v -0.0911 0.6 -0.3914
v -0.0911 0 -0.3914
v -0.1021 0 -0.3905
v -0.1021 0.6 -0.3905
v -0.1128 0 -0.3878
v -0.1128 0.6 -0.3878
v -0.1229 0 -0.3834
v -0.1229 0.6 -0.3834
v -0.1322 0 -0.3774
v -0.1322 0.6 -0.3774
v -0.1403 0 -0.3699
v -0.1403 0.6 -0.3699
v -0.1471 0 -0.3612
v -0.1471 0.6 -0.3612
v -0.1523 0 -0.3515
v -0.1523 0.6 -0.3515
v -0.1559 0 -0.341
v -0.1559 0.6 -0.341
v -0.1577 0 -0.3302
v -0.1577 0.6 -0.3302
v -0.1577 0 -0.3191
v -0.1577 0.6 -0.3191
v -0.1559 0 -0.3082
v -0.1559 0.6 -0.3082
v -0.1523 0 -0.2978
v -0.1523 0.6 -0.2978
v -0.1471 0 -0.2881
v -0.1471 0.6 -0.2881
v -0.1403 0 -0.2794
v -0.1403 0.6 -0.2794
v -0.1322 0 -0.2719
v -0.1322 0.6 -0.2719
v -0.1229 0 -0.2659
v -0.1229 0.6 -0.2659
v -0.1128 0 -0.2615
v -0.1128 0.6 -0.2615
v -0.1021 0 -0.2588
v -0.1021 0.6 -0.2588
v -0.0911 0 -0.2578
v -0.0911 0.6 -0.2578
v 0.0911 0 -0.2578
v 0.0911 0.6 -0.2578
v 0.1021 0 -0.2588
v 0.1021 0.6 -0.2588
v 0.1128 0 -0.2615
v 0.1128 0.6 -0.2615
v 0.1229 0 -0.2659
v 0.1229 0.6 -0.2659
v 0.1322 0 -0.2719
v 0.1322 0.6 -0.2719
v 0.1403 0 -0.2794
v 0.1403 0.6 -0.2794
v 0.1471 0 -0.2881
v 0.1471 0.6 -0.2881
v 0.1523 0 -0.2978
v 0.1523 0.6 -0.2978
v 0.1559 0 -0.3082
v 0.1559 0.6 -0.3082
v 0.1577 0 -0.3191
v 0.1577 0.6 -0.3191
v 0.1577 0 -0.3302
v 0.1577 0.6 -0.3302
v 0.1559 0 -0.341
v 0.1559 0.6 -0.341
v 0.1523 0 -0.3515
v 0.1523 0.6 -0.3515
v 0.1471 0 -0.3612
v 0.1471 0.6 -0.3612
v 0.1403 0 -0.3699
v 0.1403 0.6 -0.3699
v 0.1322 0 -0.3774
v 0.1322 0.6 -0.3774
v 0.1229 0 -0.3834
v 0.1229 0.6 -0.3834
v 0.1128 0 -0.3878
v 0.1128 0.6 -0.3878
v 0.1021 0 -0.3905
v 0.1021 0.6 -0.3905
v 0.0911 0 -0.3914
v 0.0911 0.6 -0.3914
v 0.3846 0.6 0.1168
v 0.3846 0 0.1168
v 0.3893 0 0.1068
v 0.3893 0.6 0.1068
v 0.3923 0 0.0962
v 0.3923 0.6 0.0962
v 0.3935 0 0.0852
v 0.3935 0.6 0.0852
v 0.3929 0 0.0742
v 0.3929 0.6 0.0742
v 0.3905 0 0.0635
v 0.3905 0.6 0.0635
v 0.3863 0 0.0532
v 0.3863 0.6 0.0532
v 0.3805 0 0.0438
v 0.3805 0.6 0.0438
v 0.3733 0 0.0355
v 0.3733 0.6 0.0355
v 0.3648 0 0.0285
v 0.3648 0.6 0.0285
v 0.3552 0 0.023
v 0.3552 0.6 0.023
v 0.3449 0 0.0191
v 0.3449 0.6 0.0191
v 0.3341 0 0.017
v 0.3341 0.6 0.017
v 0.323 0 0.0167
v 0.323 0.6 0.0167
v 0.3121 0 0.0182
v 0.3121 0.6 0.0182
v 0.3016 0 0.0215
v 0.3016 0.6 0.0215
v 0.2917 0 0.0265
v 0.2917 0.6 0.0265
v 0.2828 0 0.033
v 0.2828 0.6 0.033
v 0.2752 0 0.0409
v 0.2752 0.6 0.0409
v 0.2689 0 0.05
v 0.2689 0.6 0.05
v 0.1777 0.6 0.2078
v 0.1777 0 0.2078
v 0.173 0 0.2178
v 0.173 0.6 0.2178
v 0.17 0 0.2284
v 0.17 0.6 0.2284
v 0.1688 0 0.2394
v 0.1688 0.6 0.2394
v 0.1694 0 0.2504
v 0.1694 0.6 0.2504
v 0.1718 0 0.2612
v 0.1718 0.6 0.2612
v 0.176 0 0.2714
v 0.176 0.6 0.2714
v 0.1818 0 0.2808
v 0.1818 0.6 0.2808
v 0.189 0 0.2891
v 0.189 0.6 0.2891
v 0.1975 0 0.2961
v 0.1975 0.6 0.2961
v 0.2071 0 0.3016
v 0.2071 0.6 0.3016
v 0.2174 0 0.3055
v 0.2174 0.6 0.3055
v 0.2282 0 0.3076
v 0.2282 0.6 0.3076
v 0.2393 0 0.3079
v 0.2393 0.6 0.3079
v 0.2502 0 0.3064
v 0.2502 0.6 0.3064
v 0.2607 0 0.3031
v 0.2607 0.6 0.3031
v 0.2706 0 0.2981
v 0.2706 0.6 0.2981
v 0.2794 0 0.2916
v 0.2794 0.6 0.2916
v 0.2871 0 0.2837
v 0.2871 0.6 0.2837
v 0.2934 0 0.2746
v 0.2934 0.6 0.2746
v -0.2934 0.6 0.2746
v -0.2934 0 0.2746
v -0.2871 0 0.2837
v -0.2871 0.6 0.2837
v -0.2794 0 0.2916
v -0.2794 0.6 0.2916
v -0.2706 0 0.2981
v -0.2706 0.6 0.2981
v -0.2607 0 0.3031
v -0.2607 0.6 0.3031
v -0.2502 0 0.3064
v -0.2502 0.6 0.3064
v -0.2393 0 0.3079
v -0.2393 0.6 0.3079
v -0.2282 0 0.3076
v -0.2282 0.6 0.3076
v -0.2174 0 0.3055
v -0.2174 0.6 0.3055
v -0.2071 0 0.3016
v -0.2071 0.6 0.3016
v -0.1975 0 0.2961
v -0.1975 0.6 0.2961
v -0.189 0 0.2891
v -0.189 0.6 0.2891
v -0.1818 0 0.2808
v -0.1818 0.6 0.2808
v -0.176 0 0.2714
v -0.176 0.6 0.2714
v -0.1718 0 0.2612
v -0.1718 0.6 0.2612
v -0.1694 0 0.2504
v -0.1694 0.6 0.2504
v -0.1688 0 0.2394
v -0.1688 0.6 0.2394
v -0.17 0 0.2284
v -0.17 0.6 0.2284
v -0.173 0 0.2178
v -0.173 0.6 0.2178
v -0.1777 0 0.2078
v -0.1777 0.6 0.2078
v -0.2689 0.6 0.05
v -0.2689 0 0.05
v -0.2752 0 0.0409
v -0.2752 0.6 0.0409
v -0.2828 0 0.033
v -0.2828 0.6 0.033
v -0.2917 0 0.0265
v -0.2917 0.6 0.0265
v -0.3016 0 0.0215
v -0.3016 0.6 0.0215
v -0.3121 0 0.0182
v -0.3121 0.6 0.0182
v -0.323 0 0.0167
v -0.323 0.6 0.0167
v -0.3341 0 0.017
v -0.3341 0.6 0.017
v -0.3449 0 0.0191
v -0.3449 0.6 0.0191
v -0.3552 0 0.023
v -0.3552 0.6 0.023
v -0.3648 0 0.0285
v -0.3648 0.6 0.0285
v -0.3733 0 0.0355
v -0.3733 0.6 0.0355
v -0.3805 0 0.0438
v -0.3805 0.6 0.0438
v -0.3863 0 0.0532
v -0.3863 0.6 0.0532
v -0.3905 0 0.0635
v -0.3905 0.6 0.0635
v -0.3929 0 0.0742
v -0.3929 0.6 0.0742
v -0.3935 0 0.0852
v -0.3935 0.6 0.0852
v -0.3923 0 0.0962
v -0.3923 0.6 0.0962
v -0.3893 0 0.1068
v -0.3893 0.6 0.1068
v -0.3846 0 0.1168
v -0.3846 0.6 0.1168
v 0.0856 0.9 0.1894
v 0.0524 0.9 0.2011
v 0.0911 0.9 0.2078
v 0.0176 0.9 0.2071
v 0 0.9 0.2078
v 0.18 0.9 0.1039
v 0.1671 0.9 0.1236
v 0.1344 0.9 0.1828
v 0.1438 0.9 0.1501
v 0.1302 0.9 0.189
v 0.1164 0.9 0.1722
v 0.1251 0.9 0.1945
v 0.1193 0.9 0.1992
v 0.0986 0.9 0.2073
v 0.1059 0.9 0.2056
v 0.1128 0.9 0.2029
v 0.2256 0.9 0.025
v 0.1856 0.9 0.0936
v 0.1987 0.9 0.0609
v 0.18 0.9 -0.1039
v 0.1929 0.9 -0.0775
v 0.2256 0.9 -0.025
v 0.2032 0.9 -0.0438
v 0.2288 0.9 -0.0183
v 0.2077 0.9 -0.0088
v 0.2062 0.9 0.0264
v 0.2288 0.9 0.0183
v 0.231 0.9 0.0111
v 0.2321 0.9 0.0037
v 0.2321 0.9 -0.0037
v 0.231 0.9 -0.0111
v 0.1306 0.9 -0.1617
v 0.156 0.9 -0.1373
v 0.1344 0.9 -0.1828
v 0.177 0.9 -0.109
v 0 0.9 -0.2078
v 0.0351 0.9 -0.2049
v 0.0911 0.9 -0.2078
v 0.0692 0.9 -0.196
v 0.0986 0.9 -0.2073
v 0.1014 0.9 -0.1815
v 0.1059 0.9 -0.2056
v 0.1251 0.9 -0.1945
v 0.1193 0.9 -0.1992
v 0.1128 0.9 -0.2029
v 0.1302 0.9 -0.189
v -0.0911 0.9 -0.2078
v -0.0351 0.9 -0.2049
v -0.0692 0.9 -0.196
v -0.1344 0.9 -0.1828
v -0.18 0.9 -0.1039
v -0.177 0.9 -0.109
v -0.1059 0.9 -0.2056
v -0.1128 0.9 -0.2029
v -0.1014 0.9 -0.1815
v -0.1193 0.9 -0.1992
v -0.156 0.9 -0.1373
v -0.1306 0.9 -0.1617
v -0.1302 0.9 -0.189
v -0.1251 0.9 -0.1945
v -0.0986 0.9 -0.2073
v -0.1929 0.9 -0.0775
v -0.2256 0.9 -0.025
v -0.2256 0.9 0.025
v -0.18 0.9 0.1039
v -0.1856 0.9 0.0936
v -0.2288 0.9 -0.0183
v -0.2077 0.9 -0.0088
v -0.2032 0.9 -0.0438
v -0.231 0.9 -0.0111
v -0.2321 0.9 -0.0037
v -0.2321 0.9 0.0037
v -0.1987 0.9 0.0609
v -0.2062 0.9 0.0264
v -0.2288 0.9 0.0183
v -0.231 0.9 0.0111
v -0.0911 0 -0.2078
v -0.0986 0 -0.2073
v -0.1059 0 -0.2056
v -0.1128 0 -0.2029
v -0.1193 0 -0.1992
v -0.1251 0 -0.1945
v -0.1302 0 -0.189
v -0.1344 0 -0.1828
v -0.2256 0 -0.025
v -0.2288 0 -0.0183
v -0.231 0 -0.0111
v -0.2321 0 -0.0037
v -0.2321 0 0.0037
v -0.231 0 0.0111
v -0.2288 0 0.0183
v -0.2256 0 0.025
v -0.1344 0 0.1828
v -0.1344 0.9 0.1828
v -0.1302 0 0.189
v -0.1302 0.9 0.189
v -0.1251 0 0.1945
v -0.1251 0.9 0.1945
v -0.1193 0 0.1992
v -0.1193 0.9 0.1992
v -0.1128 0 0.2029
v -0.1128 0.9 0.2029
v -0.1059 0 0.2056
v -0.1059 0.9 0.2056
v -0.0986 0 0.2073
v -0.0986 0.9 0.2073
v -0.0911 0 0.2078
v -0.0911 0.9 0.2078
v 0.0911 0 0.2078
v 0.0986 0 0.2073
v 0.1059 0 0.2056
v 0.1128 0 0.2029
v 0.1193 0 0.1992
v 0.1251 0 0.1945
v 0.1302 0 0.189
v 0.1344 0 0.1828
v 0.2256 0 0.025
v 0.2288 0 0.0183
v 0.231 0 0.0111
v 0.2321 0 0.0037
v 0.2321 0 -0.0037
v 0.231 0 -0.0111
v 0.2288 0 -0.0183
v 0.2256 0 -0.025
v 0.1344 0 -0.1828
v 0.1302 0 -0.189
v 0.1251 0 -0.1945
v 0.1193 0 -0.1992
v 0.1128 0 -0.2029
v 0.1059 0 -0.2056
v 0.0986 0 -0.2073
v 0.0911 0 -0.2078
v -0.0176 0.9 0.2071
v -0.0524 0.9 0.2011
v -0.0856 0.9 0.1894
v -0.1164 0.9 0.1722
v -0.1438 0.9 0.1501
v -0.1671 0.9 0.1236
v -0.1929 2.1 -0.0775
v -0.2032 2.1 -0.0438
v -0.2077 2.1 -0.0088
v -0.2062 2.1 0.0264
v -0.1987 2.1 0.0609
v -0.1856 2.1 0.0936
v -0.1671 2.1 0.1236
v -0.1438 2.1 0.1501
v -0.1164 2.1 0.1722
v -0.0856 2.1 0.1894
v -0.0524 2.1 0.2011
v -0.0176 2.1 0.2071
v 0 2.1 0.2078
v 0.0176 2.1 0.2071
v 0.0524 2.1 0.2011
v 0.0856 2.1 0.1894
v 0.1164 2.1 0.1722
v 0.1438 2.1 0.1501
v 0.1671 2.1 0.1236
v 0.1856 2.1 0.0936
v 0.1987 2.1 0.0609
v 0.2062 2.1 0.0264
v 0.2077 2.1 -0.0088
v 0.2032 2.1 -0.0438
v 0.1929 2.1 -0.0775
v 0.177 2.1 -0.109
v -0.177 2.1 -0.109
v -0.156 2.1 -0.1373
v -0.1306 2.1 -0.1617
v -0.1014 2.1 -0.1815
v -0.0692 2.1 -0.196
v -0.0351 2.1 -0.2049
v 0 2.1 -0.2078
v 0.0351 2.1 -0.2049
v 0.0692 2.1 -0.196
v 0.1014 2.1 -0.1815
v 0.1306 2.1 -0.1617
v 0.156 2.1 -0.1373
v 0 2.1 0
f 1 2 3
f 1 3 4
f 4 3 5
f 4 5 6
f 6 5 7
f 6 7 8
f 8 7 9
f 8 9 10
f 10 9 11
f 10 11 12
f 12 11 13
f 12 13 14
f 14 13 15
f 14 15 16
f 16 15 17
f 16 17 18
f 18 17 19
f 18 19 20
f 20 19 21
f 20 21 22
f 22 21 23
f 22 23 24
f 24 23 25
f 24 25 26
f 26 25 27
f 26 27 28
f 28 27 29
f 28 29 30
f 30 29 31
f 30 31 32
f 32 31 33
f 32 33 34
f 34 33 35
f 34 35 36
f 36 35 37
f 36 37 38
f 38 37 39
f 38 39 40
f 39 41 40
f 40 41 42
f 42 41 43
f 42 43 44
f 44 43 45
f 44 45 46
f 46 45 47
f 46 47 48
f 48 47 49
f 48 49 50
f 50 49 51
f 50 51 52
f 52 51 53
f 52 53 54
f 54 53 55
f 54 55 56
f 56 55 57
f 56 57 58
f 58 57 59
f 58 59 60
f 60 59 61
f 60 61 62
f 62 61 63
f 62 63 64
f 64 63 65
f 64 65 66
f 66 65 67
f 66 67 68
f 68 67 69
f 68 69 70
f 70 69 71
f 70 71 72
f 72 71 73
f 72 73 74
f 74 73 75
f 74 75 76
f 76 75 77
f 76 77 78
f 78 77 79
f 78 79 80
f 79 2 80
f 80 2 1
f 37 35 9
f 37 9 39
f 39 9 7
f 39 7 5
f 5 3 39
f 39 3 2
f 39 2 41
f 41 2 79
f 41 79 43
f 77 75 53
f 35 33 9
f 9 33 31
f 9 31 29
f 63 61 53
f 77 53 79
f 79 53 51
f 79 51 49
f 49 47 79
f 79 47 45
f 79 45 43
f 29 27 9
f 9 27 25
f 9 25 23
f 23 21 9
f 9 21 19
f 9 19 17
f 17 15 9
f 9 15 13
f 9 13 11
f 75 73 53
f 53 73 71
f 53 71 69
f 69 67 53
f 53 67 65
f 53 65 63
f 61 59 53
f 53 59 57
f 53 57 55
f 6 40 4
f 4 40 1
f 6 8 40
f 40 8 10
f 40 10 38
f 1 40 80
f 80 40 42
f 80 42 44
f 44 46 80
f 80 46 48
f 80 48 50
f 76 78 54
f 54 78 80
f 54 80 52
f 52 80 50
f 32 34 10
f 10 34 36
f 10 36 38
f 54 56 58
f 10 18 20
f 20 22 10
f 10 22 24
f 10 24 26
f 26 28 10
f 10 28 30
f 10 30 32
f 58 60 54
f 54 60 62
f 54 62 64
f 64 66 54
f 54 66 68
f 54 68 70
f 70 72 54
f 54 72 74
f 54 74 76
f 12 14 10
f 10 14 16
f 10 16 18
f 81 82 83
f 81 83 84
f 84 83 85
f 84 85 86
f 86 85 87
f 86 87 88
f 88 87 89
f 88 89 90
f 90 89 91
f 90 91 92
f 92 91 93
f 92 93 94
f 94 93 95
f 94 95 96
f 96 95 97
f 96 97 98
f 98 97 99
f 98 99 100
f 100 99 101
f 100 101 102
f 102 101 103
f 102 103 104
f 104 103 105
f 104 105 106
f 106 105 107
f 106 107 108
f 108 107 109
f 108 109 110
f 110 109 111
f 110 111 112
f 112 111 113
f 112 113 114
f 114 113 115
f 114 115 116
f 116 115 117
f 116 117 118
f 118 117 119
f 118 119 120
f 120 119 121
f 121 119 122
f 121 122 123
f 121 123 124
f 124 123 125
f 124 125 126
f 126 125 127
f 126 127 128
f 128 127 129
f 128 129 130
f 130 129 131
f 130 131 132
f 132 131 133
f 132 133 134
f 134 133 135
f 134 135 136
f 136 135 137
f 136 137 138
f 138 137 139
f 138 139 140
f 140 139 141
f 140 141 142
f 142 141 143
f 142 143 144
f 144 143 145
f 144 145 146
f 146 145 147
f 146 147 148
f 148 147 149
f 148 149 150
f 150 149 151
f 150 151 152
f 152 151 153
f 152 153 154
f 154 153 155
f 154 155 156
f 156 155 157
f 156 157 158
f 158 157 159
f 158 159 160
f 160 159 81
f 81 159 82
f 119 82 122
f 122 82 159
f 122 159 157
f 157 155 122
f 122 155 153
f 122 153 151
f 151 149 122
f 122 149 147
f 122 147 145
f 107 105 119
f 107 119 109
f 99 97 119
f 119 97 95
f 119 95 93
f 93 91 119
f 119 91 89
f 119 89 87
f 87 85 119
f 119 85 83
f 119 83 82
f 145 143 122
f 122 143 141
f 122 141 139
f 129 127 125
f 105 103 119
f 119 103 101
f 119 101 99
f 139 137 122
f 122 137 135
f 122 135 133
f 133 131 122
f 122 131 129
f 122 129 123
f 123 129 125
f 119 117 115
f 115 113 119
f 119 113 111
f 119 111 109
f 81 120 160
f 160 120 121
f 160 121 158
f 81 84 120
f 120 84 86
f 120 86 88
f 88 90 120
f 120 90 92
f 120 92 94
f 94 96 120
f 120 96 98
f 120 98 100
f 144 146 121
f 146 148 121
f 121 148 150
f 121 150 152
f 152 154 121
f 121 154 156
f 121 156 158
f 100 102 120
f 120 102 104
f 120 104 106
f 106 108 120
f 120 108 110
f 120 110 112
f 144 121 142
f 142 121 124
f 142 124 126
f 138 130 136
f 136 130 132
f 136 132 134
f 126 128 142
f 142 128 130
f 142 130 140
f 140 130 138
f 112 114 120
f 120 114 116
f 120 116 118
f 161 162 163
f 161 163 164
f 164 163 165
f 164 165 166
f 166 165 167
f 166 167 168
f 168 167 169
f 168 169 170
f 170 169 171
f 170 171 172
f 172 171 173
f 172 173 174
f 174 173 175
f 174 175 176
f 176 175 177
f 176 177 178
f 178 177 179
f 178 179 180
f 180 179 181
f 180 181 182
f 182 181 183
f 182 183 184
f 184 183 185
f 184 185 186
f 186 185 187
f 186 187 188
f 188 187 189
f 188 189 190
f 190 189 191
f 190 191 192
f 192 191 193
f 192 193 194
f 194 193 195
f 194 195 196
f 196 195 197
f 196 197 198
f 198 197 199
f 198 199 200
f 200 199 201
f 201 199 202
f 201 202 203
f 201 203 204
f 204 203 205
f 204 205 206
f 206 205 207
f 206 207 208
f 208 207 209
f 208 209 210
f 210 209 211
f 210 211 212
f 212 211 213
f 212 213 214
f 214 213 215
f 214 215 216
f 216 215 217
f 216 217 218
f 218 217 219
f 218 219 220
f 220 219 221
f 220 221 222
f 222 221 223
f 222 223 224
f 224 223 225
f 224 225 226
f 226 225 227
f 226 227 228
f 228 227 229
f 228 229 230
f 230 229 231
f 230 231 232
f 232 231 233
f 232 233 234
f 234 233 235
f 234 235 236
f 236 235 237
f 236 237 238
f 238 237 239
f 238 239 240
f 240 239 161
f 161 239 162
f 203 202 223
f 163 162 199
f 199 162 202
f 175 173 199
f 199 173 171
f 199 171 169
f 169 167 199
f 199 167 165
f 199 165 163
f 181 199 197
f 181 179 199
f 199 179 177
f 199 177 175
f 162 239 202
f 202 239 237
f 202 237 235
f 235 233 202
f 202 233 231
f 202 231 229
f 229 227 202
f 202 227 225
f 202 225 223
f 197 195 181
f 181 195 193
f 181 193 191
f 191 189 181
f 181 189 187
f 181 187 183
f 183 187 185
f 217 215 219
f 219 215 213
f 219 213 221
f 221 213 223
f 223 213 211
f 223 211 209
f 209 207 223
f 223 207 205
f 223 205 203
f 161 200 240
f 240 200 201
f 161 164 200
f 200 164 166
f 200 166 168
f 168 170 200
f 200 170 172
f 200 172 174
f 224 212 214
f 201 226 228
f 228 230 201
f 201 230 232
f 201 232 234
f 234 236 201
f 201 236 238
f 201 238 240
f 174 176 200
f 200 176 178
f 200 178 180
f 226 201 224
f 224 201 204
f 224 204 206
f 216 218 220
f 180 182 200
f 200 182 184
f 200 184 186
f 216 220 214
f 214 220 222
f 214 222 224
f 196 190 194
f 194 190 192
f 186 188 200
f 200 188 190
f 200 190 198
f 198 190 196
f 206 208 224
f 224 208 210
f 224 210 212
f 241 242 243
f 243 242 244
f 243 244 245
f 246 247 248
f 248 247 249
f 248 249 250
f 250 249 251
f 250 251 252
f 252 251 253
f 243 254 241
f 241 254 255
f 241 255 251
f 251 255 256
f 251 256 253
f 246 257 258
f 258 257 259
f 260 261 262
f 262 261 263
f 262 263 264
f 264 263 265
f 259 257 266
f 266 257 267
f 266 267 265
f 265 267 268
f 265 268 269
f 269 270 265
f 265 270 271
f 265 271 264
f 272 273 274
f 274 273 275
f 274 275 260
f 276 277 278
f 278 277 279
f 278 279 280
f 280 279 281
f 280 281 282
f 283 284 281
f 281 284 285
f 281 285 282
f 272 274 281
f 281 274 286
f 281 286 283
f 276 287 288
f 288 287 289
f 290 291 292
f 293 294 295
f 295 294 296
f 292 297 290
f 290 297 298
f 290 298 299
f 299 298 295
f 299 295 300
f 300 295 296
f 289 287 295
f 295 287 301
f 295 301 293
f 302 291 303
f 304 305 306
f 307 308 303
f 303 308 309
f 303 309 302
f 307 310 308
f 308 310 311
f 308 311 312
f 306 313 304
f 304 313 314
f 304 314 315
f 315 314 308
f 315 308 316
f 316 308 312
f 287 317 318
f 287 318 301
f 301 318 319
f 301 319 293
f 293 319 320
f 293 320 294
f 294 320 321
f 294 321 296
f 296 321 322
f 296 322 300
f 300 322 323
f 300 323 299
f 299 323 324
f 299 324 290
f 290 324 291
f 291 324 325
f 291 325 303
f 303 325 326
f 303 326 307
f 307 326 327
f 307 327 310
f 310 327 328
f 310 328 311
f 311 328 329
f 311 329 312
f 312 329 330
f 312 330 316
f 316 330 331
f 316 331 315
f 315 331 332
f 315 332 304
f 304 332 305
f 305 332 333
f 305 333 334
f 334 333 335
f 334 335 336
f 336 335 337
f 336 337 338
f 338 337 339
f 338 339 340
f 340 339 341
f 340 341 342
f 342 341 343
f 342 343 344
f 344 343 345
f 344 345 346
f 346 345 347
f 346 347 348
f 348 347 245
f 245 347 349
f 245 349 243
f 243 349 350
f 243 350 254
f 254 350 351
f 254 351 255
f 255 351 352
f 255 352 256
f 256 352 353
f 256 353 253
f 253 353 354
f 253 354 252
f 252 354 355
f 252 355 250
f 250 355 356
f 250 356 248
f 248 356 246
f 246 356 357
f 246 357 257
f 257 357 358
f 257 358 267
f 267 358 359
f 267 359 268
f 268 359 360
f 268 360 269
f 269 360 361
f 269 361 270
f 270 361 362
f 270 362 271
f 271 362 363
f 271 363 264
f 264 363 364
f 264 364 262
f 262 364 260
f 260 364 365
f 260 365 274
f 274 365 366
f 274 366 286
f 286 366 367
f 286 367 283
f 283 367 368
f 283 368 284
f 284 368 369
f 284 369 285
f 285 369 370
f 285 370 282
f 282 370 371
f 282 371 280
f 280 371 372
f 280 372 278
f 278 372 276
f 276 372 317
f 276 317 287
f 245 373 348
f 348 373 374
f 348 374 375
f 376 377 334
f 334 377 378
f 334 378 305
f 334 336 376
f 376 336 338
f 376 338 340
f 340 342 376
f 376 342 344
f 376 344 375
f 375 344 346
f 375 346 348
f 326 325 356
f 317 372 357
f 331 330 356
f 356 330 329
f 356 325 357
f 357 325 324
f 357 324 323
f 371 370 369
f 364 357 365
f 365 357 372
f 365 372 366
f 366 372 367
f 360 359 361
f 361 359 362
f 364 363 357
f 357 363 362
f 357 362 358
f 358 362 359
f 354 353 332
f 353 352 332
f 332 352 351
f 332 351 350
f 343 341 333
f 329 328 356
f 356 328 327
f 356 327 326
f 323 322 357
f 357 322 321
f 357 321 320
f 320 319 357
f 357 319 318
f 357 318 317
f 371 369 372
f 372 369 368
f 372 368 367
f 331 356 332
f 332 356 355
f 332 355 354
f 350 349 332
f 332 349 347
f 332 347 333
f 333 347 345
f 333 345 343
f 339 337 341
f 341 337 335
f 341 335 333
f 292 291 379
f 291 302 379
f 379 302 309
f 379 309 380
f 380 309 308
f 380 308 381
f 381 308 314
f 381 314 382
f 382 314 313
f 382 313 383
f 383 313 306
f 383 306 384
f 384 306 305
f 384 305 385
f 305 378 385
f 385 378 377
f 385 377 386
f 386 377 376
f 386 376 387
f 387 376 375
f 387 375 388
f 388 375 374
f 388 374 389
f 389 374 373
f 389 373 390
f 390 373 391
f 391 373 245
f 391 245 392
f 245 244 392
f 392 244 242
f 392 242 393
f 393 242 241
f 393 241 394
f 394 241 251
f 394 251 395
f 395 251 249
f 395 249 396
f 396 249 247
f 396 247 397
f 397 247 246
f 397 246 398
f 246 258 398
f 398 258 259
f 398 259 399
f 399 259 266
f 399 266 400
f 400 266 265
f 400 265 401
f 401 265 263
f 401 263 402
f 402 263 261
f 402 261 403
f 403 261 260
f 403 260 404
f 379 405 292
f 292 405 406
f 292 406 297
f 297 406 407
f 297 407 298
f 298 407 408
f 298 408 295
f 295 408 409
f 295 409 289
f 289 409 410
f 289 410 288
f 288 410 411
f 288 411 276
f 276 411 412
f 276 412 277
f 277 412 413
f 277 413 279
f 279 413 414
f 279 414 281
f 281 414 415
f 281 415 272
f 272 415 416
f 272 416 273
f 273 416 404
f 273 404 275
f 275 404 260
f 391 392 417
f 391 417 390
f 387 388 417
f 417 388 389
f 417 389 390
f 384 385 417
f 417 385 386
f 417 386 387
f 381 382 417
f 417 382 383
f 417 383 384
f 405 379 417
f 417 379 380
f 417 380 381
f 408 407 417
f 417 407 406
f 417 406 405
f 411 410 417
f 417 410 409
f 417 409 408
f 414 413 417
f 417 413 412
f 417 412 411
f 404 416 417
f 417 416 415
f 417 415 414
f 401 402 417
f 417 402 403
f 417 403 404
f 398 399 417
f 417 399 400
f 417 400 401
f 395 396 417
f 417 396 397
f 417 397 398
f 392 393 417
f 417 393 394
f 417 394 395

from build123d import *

# Parameters (mm, degrees)
BOSS_EXTRUDE5_DEPTH   = 0.9
BOSS_EXTRUDE5_2_DEPTH = 0.9
BOSS_EXTRUDE5_3_DEPTH = 0.9
BOSS_EXTRUDE5_4_DEPTH = 0.9
CUT_EXTRUDE2_START    = -0.3
CUT_EXTRUDE2_DEPTH    = 0.3
SKETCH5_R             = 0.207846097
BOSS_EXTRUDE6_DEPTH   = 1.2


with BuildPart() as part:
    # Sketch1 → Boss-Extrude5 (new body)
    with BuildSketch(Plane(origin=(0, 0, 0), x_dir=(1, 0, 0), z_dir=(0, 1, 0))):
        with BuildLine():
            Line((-0.091132487, 0.257846097), (0.091132487, 0.257846097))
            ThreePointArc((0.091132487, 0.257846097), (0.157927132, 0.324640742), (0.091132487, 0.391435388))
            Line((0.091132487, 0.391435388), (-0.091132487, 0.391435388))
            ThreePointArc((-0.091132487, 0.391435388), (-0.157927132, 0.324640742), (-0.091132487, 0.257846097))
        make_face()
    extrude(amount=BOSS_EXTRUDE5_DEPTH)


with BuildPart() as body_2:
    # Sketch1 → Boss-Extrude5 2 (new body)
    with BuildSketch(Plane(origin=(0, 0, 0), x_dir=(1, 0, 0), z_dir=(0, 1, 0))):
        with BuildLine():
            Line((-0.134433757, 0.182846097), (-0.225566243, 0.025))
            ThreePointArc((-0.225566243, 0.025), (-0.232264973, 0), (-0.225566243, -0.025))
            Line((-0.225566243, -0.025), (-0.134433757, -0.182846097))
            ThreePointArc((-0.134433757, -0.182846097), (-0.116132487, -0.201147367), (-0.091132487, -0.207846097))
            Line((-0.091132487, -0.207846097), (0.091132487, -0.207846097))
            ThreePointArc((0.091132487, -0.207846097), (0.116132487, -0.201147367), (0.134433757, -0.182846097))
            Line((0.134433757, -0.182846097), (0.225566243, -0.025))
            ThreePointArc((0.225566243, -0.025), (0.232264973, 0), (0.225566243, 0.025))
            Line((0.225566243, 0.025), (0.134433757, 0.182846097))
            ThreePointArc((0.134433757, 0.182846097), (0.116132487, 0.201147367), (0.091132487, 0.207846097))
            Line((0.091132487, 0.207846097), (-0.091132487, 0.207846097))
            ThreePointArc((-0.091132487, 0.207846097), (-0.116132487, 0.201147367), (-0.134433757, 0.182846097))
        make_face()
    extrude(amount=BOSS_EXTRUDE5_2_DEPTH)

    # Sketch5 → Boss-Extrude6 (add)
    with BuildSketch(Plane(origin=(0, 0.9, 0), x_dir=(1, 0, 0), z_dir=(0, 1, 0))):
        with Locations(Location((0, 0, 0), (0, 0, 270))):
            Circle(SKETCH5_R)
    extrude(amount=BOSS_EXTRUDE6_DEPTH)


with BuildPart() as body_3:
    # Sketch1 → Boss-Extrude5 3 (new body)
    with BuildSketch(Plane(origin=(0, 0, 0), x_dir=(1, 0, 0), z_dir=(0, 1, 0))):
        with BuildLine():
            Line((0.293426746, -0.274640742), (0.384559233, -0.116794645))
            ThreePointArc((0.384559233, -0.116794645), (0.360110696, -0.025551463), (0.268867513, -0.05))
            Line((0.268867513, -0.05), (0.177735027, -0.207846097))
            ThreePointArc((0.177735027, -0.207846097), (0.202183564, -0.299089279), (0.293426746, -0.274640742))
        make_face()
    extrude(amount=BOSS_EXTRUDE5_3_DEPTH)


with BuildPart() as body_4:
    # Sketch1 → Boss-Extrude5 4 (new body)
    with BuildSketch(Plane(origin=(0, 0, 0), x_dir=(1, 0, 0), z_dir=(0, 1, 0))):
        with BuildLine():
            Line((-0.384559233, -0.116794645), (-0.293426746, -0.274640742))
            ThreePointArc((-0.293426746, -0.274640742), (-0.202183564, -0.299089279), (-0.177735027, -0.207846097))
            Line((-0.177735027, -0.207846097), (-0.268867513, -0.05))
            ThreePointArc((-0.268867513, -0.05), (-0.360110696, -0.025551463), (-0.384559233, -0.116794645))
        make_face()
    extrude(amount=BOSS_EXTRUDE5_4_DEPTH)


with BuildPart() as cut_extrude2_tool:
    # Sketch4 → Cut-Extrude2 (new body)
    with BuildSketch(Plane(origin=(0, 0.9, 0), x_dir=(1, 0, 0), z_dir=(0, 1, 0)).offset(CUT_EXTRUDE2_START)):
        with BuildLine():
            Line((-0.091132487, 0.391435388), (0.091132487, 0.391435388))
            ThreePointArc((0.091132487, 0.391435388), (0.157927132, 0.324640742), (0.091132487, 0.257846097))
            Line((0.091132487, 0.257846097), (-0.091132487, 0.257846097))
            ThreePointArc((-0.091132487, 0.257846097), (-0.157927132, 0.324640742), (-0.091132487, 0.391435388))
        make_face()
        with BuildLine():
            Line((0.268867513, -0.05), (0.177735027, -0.207846097))
            ThreePointArc((0.177735027, -0.207846097), (0.202183564, -0.299089279), (0.293426746, -0.274640742))
            Line((0.293426746, -0.274640742), (0.384559233, -0.116794645))
            ThreePointArc((0.384559233, -0.116794645), (0.360110696, -0.025551463), (0.268867513, -0.05))
        make_face()
        with BuildLine():
            Line((-0.177735027, -0.207846097), (-0.268867513, -0.05))
            ThreePointArc((-0.268867513, -0.05), (-0.360110696, -0.025551463), (-0.384559233, -0.116794645))
            Line((-0.384559233, -0.116794645), (-0.293426746, -0.274640742))
            ThreePointArc((-0.293426746, -0.274640742), (-0.202183564, -0.299089279), (-0.177735027, -0.207846097))
        make_face()
    extrude(amount=CUT_EXTRUDE2_DEPTH)


with BuildPart() as part_1:
    add(part.part)

    # Cut-Extrude2: cut by cut_extrude2_tool
    add(cut_extrude2_tool.part, mode=Mode.SUBTRACT)


with BuildPart() as body_3_1:
    add(body_3.part)

    # Cut-Extrude2: cut by cut_extrude2_tool
    add(cut_extrude2_tool.part, mode=Mode.SUBTRACT)


with BuildPart() as body_4_1:
    add(body_4.part)

    # Cut-Extrude2: cut by cut_extrude2_tool
    add(cut_extrude2_tool.part, mode=Mode.SUBTRACT)


solid = Compound([body_2.part, part_1.part, body_3_1.part, body_4_1.part])
